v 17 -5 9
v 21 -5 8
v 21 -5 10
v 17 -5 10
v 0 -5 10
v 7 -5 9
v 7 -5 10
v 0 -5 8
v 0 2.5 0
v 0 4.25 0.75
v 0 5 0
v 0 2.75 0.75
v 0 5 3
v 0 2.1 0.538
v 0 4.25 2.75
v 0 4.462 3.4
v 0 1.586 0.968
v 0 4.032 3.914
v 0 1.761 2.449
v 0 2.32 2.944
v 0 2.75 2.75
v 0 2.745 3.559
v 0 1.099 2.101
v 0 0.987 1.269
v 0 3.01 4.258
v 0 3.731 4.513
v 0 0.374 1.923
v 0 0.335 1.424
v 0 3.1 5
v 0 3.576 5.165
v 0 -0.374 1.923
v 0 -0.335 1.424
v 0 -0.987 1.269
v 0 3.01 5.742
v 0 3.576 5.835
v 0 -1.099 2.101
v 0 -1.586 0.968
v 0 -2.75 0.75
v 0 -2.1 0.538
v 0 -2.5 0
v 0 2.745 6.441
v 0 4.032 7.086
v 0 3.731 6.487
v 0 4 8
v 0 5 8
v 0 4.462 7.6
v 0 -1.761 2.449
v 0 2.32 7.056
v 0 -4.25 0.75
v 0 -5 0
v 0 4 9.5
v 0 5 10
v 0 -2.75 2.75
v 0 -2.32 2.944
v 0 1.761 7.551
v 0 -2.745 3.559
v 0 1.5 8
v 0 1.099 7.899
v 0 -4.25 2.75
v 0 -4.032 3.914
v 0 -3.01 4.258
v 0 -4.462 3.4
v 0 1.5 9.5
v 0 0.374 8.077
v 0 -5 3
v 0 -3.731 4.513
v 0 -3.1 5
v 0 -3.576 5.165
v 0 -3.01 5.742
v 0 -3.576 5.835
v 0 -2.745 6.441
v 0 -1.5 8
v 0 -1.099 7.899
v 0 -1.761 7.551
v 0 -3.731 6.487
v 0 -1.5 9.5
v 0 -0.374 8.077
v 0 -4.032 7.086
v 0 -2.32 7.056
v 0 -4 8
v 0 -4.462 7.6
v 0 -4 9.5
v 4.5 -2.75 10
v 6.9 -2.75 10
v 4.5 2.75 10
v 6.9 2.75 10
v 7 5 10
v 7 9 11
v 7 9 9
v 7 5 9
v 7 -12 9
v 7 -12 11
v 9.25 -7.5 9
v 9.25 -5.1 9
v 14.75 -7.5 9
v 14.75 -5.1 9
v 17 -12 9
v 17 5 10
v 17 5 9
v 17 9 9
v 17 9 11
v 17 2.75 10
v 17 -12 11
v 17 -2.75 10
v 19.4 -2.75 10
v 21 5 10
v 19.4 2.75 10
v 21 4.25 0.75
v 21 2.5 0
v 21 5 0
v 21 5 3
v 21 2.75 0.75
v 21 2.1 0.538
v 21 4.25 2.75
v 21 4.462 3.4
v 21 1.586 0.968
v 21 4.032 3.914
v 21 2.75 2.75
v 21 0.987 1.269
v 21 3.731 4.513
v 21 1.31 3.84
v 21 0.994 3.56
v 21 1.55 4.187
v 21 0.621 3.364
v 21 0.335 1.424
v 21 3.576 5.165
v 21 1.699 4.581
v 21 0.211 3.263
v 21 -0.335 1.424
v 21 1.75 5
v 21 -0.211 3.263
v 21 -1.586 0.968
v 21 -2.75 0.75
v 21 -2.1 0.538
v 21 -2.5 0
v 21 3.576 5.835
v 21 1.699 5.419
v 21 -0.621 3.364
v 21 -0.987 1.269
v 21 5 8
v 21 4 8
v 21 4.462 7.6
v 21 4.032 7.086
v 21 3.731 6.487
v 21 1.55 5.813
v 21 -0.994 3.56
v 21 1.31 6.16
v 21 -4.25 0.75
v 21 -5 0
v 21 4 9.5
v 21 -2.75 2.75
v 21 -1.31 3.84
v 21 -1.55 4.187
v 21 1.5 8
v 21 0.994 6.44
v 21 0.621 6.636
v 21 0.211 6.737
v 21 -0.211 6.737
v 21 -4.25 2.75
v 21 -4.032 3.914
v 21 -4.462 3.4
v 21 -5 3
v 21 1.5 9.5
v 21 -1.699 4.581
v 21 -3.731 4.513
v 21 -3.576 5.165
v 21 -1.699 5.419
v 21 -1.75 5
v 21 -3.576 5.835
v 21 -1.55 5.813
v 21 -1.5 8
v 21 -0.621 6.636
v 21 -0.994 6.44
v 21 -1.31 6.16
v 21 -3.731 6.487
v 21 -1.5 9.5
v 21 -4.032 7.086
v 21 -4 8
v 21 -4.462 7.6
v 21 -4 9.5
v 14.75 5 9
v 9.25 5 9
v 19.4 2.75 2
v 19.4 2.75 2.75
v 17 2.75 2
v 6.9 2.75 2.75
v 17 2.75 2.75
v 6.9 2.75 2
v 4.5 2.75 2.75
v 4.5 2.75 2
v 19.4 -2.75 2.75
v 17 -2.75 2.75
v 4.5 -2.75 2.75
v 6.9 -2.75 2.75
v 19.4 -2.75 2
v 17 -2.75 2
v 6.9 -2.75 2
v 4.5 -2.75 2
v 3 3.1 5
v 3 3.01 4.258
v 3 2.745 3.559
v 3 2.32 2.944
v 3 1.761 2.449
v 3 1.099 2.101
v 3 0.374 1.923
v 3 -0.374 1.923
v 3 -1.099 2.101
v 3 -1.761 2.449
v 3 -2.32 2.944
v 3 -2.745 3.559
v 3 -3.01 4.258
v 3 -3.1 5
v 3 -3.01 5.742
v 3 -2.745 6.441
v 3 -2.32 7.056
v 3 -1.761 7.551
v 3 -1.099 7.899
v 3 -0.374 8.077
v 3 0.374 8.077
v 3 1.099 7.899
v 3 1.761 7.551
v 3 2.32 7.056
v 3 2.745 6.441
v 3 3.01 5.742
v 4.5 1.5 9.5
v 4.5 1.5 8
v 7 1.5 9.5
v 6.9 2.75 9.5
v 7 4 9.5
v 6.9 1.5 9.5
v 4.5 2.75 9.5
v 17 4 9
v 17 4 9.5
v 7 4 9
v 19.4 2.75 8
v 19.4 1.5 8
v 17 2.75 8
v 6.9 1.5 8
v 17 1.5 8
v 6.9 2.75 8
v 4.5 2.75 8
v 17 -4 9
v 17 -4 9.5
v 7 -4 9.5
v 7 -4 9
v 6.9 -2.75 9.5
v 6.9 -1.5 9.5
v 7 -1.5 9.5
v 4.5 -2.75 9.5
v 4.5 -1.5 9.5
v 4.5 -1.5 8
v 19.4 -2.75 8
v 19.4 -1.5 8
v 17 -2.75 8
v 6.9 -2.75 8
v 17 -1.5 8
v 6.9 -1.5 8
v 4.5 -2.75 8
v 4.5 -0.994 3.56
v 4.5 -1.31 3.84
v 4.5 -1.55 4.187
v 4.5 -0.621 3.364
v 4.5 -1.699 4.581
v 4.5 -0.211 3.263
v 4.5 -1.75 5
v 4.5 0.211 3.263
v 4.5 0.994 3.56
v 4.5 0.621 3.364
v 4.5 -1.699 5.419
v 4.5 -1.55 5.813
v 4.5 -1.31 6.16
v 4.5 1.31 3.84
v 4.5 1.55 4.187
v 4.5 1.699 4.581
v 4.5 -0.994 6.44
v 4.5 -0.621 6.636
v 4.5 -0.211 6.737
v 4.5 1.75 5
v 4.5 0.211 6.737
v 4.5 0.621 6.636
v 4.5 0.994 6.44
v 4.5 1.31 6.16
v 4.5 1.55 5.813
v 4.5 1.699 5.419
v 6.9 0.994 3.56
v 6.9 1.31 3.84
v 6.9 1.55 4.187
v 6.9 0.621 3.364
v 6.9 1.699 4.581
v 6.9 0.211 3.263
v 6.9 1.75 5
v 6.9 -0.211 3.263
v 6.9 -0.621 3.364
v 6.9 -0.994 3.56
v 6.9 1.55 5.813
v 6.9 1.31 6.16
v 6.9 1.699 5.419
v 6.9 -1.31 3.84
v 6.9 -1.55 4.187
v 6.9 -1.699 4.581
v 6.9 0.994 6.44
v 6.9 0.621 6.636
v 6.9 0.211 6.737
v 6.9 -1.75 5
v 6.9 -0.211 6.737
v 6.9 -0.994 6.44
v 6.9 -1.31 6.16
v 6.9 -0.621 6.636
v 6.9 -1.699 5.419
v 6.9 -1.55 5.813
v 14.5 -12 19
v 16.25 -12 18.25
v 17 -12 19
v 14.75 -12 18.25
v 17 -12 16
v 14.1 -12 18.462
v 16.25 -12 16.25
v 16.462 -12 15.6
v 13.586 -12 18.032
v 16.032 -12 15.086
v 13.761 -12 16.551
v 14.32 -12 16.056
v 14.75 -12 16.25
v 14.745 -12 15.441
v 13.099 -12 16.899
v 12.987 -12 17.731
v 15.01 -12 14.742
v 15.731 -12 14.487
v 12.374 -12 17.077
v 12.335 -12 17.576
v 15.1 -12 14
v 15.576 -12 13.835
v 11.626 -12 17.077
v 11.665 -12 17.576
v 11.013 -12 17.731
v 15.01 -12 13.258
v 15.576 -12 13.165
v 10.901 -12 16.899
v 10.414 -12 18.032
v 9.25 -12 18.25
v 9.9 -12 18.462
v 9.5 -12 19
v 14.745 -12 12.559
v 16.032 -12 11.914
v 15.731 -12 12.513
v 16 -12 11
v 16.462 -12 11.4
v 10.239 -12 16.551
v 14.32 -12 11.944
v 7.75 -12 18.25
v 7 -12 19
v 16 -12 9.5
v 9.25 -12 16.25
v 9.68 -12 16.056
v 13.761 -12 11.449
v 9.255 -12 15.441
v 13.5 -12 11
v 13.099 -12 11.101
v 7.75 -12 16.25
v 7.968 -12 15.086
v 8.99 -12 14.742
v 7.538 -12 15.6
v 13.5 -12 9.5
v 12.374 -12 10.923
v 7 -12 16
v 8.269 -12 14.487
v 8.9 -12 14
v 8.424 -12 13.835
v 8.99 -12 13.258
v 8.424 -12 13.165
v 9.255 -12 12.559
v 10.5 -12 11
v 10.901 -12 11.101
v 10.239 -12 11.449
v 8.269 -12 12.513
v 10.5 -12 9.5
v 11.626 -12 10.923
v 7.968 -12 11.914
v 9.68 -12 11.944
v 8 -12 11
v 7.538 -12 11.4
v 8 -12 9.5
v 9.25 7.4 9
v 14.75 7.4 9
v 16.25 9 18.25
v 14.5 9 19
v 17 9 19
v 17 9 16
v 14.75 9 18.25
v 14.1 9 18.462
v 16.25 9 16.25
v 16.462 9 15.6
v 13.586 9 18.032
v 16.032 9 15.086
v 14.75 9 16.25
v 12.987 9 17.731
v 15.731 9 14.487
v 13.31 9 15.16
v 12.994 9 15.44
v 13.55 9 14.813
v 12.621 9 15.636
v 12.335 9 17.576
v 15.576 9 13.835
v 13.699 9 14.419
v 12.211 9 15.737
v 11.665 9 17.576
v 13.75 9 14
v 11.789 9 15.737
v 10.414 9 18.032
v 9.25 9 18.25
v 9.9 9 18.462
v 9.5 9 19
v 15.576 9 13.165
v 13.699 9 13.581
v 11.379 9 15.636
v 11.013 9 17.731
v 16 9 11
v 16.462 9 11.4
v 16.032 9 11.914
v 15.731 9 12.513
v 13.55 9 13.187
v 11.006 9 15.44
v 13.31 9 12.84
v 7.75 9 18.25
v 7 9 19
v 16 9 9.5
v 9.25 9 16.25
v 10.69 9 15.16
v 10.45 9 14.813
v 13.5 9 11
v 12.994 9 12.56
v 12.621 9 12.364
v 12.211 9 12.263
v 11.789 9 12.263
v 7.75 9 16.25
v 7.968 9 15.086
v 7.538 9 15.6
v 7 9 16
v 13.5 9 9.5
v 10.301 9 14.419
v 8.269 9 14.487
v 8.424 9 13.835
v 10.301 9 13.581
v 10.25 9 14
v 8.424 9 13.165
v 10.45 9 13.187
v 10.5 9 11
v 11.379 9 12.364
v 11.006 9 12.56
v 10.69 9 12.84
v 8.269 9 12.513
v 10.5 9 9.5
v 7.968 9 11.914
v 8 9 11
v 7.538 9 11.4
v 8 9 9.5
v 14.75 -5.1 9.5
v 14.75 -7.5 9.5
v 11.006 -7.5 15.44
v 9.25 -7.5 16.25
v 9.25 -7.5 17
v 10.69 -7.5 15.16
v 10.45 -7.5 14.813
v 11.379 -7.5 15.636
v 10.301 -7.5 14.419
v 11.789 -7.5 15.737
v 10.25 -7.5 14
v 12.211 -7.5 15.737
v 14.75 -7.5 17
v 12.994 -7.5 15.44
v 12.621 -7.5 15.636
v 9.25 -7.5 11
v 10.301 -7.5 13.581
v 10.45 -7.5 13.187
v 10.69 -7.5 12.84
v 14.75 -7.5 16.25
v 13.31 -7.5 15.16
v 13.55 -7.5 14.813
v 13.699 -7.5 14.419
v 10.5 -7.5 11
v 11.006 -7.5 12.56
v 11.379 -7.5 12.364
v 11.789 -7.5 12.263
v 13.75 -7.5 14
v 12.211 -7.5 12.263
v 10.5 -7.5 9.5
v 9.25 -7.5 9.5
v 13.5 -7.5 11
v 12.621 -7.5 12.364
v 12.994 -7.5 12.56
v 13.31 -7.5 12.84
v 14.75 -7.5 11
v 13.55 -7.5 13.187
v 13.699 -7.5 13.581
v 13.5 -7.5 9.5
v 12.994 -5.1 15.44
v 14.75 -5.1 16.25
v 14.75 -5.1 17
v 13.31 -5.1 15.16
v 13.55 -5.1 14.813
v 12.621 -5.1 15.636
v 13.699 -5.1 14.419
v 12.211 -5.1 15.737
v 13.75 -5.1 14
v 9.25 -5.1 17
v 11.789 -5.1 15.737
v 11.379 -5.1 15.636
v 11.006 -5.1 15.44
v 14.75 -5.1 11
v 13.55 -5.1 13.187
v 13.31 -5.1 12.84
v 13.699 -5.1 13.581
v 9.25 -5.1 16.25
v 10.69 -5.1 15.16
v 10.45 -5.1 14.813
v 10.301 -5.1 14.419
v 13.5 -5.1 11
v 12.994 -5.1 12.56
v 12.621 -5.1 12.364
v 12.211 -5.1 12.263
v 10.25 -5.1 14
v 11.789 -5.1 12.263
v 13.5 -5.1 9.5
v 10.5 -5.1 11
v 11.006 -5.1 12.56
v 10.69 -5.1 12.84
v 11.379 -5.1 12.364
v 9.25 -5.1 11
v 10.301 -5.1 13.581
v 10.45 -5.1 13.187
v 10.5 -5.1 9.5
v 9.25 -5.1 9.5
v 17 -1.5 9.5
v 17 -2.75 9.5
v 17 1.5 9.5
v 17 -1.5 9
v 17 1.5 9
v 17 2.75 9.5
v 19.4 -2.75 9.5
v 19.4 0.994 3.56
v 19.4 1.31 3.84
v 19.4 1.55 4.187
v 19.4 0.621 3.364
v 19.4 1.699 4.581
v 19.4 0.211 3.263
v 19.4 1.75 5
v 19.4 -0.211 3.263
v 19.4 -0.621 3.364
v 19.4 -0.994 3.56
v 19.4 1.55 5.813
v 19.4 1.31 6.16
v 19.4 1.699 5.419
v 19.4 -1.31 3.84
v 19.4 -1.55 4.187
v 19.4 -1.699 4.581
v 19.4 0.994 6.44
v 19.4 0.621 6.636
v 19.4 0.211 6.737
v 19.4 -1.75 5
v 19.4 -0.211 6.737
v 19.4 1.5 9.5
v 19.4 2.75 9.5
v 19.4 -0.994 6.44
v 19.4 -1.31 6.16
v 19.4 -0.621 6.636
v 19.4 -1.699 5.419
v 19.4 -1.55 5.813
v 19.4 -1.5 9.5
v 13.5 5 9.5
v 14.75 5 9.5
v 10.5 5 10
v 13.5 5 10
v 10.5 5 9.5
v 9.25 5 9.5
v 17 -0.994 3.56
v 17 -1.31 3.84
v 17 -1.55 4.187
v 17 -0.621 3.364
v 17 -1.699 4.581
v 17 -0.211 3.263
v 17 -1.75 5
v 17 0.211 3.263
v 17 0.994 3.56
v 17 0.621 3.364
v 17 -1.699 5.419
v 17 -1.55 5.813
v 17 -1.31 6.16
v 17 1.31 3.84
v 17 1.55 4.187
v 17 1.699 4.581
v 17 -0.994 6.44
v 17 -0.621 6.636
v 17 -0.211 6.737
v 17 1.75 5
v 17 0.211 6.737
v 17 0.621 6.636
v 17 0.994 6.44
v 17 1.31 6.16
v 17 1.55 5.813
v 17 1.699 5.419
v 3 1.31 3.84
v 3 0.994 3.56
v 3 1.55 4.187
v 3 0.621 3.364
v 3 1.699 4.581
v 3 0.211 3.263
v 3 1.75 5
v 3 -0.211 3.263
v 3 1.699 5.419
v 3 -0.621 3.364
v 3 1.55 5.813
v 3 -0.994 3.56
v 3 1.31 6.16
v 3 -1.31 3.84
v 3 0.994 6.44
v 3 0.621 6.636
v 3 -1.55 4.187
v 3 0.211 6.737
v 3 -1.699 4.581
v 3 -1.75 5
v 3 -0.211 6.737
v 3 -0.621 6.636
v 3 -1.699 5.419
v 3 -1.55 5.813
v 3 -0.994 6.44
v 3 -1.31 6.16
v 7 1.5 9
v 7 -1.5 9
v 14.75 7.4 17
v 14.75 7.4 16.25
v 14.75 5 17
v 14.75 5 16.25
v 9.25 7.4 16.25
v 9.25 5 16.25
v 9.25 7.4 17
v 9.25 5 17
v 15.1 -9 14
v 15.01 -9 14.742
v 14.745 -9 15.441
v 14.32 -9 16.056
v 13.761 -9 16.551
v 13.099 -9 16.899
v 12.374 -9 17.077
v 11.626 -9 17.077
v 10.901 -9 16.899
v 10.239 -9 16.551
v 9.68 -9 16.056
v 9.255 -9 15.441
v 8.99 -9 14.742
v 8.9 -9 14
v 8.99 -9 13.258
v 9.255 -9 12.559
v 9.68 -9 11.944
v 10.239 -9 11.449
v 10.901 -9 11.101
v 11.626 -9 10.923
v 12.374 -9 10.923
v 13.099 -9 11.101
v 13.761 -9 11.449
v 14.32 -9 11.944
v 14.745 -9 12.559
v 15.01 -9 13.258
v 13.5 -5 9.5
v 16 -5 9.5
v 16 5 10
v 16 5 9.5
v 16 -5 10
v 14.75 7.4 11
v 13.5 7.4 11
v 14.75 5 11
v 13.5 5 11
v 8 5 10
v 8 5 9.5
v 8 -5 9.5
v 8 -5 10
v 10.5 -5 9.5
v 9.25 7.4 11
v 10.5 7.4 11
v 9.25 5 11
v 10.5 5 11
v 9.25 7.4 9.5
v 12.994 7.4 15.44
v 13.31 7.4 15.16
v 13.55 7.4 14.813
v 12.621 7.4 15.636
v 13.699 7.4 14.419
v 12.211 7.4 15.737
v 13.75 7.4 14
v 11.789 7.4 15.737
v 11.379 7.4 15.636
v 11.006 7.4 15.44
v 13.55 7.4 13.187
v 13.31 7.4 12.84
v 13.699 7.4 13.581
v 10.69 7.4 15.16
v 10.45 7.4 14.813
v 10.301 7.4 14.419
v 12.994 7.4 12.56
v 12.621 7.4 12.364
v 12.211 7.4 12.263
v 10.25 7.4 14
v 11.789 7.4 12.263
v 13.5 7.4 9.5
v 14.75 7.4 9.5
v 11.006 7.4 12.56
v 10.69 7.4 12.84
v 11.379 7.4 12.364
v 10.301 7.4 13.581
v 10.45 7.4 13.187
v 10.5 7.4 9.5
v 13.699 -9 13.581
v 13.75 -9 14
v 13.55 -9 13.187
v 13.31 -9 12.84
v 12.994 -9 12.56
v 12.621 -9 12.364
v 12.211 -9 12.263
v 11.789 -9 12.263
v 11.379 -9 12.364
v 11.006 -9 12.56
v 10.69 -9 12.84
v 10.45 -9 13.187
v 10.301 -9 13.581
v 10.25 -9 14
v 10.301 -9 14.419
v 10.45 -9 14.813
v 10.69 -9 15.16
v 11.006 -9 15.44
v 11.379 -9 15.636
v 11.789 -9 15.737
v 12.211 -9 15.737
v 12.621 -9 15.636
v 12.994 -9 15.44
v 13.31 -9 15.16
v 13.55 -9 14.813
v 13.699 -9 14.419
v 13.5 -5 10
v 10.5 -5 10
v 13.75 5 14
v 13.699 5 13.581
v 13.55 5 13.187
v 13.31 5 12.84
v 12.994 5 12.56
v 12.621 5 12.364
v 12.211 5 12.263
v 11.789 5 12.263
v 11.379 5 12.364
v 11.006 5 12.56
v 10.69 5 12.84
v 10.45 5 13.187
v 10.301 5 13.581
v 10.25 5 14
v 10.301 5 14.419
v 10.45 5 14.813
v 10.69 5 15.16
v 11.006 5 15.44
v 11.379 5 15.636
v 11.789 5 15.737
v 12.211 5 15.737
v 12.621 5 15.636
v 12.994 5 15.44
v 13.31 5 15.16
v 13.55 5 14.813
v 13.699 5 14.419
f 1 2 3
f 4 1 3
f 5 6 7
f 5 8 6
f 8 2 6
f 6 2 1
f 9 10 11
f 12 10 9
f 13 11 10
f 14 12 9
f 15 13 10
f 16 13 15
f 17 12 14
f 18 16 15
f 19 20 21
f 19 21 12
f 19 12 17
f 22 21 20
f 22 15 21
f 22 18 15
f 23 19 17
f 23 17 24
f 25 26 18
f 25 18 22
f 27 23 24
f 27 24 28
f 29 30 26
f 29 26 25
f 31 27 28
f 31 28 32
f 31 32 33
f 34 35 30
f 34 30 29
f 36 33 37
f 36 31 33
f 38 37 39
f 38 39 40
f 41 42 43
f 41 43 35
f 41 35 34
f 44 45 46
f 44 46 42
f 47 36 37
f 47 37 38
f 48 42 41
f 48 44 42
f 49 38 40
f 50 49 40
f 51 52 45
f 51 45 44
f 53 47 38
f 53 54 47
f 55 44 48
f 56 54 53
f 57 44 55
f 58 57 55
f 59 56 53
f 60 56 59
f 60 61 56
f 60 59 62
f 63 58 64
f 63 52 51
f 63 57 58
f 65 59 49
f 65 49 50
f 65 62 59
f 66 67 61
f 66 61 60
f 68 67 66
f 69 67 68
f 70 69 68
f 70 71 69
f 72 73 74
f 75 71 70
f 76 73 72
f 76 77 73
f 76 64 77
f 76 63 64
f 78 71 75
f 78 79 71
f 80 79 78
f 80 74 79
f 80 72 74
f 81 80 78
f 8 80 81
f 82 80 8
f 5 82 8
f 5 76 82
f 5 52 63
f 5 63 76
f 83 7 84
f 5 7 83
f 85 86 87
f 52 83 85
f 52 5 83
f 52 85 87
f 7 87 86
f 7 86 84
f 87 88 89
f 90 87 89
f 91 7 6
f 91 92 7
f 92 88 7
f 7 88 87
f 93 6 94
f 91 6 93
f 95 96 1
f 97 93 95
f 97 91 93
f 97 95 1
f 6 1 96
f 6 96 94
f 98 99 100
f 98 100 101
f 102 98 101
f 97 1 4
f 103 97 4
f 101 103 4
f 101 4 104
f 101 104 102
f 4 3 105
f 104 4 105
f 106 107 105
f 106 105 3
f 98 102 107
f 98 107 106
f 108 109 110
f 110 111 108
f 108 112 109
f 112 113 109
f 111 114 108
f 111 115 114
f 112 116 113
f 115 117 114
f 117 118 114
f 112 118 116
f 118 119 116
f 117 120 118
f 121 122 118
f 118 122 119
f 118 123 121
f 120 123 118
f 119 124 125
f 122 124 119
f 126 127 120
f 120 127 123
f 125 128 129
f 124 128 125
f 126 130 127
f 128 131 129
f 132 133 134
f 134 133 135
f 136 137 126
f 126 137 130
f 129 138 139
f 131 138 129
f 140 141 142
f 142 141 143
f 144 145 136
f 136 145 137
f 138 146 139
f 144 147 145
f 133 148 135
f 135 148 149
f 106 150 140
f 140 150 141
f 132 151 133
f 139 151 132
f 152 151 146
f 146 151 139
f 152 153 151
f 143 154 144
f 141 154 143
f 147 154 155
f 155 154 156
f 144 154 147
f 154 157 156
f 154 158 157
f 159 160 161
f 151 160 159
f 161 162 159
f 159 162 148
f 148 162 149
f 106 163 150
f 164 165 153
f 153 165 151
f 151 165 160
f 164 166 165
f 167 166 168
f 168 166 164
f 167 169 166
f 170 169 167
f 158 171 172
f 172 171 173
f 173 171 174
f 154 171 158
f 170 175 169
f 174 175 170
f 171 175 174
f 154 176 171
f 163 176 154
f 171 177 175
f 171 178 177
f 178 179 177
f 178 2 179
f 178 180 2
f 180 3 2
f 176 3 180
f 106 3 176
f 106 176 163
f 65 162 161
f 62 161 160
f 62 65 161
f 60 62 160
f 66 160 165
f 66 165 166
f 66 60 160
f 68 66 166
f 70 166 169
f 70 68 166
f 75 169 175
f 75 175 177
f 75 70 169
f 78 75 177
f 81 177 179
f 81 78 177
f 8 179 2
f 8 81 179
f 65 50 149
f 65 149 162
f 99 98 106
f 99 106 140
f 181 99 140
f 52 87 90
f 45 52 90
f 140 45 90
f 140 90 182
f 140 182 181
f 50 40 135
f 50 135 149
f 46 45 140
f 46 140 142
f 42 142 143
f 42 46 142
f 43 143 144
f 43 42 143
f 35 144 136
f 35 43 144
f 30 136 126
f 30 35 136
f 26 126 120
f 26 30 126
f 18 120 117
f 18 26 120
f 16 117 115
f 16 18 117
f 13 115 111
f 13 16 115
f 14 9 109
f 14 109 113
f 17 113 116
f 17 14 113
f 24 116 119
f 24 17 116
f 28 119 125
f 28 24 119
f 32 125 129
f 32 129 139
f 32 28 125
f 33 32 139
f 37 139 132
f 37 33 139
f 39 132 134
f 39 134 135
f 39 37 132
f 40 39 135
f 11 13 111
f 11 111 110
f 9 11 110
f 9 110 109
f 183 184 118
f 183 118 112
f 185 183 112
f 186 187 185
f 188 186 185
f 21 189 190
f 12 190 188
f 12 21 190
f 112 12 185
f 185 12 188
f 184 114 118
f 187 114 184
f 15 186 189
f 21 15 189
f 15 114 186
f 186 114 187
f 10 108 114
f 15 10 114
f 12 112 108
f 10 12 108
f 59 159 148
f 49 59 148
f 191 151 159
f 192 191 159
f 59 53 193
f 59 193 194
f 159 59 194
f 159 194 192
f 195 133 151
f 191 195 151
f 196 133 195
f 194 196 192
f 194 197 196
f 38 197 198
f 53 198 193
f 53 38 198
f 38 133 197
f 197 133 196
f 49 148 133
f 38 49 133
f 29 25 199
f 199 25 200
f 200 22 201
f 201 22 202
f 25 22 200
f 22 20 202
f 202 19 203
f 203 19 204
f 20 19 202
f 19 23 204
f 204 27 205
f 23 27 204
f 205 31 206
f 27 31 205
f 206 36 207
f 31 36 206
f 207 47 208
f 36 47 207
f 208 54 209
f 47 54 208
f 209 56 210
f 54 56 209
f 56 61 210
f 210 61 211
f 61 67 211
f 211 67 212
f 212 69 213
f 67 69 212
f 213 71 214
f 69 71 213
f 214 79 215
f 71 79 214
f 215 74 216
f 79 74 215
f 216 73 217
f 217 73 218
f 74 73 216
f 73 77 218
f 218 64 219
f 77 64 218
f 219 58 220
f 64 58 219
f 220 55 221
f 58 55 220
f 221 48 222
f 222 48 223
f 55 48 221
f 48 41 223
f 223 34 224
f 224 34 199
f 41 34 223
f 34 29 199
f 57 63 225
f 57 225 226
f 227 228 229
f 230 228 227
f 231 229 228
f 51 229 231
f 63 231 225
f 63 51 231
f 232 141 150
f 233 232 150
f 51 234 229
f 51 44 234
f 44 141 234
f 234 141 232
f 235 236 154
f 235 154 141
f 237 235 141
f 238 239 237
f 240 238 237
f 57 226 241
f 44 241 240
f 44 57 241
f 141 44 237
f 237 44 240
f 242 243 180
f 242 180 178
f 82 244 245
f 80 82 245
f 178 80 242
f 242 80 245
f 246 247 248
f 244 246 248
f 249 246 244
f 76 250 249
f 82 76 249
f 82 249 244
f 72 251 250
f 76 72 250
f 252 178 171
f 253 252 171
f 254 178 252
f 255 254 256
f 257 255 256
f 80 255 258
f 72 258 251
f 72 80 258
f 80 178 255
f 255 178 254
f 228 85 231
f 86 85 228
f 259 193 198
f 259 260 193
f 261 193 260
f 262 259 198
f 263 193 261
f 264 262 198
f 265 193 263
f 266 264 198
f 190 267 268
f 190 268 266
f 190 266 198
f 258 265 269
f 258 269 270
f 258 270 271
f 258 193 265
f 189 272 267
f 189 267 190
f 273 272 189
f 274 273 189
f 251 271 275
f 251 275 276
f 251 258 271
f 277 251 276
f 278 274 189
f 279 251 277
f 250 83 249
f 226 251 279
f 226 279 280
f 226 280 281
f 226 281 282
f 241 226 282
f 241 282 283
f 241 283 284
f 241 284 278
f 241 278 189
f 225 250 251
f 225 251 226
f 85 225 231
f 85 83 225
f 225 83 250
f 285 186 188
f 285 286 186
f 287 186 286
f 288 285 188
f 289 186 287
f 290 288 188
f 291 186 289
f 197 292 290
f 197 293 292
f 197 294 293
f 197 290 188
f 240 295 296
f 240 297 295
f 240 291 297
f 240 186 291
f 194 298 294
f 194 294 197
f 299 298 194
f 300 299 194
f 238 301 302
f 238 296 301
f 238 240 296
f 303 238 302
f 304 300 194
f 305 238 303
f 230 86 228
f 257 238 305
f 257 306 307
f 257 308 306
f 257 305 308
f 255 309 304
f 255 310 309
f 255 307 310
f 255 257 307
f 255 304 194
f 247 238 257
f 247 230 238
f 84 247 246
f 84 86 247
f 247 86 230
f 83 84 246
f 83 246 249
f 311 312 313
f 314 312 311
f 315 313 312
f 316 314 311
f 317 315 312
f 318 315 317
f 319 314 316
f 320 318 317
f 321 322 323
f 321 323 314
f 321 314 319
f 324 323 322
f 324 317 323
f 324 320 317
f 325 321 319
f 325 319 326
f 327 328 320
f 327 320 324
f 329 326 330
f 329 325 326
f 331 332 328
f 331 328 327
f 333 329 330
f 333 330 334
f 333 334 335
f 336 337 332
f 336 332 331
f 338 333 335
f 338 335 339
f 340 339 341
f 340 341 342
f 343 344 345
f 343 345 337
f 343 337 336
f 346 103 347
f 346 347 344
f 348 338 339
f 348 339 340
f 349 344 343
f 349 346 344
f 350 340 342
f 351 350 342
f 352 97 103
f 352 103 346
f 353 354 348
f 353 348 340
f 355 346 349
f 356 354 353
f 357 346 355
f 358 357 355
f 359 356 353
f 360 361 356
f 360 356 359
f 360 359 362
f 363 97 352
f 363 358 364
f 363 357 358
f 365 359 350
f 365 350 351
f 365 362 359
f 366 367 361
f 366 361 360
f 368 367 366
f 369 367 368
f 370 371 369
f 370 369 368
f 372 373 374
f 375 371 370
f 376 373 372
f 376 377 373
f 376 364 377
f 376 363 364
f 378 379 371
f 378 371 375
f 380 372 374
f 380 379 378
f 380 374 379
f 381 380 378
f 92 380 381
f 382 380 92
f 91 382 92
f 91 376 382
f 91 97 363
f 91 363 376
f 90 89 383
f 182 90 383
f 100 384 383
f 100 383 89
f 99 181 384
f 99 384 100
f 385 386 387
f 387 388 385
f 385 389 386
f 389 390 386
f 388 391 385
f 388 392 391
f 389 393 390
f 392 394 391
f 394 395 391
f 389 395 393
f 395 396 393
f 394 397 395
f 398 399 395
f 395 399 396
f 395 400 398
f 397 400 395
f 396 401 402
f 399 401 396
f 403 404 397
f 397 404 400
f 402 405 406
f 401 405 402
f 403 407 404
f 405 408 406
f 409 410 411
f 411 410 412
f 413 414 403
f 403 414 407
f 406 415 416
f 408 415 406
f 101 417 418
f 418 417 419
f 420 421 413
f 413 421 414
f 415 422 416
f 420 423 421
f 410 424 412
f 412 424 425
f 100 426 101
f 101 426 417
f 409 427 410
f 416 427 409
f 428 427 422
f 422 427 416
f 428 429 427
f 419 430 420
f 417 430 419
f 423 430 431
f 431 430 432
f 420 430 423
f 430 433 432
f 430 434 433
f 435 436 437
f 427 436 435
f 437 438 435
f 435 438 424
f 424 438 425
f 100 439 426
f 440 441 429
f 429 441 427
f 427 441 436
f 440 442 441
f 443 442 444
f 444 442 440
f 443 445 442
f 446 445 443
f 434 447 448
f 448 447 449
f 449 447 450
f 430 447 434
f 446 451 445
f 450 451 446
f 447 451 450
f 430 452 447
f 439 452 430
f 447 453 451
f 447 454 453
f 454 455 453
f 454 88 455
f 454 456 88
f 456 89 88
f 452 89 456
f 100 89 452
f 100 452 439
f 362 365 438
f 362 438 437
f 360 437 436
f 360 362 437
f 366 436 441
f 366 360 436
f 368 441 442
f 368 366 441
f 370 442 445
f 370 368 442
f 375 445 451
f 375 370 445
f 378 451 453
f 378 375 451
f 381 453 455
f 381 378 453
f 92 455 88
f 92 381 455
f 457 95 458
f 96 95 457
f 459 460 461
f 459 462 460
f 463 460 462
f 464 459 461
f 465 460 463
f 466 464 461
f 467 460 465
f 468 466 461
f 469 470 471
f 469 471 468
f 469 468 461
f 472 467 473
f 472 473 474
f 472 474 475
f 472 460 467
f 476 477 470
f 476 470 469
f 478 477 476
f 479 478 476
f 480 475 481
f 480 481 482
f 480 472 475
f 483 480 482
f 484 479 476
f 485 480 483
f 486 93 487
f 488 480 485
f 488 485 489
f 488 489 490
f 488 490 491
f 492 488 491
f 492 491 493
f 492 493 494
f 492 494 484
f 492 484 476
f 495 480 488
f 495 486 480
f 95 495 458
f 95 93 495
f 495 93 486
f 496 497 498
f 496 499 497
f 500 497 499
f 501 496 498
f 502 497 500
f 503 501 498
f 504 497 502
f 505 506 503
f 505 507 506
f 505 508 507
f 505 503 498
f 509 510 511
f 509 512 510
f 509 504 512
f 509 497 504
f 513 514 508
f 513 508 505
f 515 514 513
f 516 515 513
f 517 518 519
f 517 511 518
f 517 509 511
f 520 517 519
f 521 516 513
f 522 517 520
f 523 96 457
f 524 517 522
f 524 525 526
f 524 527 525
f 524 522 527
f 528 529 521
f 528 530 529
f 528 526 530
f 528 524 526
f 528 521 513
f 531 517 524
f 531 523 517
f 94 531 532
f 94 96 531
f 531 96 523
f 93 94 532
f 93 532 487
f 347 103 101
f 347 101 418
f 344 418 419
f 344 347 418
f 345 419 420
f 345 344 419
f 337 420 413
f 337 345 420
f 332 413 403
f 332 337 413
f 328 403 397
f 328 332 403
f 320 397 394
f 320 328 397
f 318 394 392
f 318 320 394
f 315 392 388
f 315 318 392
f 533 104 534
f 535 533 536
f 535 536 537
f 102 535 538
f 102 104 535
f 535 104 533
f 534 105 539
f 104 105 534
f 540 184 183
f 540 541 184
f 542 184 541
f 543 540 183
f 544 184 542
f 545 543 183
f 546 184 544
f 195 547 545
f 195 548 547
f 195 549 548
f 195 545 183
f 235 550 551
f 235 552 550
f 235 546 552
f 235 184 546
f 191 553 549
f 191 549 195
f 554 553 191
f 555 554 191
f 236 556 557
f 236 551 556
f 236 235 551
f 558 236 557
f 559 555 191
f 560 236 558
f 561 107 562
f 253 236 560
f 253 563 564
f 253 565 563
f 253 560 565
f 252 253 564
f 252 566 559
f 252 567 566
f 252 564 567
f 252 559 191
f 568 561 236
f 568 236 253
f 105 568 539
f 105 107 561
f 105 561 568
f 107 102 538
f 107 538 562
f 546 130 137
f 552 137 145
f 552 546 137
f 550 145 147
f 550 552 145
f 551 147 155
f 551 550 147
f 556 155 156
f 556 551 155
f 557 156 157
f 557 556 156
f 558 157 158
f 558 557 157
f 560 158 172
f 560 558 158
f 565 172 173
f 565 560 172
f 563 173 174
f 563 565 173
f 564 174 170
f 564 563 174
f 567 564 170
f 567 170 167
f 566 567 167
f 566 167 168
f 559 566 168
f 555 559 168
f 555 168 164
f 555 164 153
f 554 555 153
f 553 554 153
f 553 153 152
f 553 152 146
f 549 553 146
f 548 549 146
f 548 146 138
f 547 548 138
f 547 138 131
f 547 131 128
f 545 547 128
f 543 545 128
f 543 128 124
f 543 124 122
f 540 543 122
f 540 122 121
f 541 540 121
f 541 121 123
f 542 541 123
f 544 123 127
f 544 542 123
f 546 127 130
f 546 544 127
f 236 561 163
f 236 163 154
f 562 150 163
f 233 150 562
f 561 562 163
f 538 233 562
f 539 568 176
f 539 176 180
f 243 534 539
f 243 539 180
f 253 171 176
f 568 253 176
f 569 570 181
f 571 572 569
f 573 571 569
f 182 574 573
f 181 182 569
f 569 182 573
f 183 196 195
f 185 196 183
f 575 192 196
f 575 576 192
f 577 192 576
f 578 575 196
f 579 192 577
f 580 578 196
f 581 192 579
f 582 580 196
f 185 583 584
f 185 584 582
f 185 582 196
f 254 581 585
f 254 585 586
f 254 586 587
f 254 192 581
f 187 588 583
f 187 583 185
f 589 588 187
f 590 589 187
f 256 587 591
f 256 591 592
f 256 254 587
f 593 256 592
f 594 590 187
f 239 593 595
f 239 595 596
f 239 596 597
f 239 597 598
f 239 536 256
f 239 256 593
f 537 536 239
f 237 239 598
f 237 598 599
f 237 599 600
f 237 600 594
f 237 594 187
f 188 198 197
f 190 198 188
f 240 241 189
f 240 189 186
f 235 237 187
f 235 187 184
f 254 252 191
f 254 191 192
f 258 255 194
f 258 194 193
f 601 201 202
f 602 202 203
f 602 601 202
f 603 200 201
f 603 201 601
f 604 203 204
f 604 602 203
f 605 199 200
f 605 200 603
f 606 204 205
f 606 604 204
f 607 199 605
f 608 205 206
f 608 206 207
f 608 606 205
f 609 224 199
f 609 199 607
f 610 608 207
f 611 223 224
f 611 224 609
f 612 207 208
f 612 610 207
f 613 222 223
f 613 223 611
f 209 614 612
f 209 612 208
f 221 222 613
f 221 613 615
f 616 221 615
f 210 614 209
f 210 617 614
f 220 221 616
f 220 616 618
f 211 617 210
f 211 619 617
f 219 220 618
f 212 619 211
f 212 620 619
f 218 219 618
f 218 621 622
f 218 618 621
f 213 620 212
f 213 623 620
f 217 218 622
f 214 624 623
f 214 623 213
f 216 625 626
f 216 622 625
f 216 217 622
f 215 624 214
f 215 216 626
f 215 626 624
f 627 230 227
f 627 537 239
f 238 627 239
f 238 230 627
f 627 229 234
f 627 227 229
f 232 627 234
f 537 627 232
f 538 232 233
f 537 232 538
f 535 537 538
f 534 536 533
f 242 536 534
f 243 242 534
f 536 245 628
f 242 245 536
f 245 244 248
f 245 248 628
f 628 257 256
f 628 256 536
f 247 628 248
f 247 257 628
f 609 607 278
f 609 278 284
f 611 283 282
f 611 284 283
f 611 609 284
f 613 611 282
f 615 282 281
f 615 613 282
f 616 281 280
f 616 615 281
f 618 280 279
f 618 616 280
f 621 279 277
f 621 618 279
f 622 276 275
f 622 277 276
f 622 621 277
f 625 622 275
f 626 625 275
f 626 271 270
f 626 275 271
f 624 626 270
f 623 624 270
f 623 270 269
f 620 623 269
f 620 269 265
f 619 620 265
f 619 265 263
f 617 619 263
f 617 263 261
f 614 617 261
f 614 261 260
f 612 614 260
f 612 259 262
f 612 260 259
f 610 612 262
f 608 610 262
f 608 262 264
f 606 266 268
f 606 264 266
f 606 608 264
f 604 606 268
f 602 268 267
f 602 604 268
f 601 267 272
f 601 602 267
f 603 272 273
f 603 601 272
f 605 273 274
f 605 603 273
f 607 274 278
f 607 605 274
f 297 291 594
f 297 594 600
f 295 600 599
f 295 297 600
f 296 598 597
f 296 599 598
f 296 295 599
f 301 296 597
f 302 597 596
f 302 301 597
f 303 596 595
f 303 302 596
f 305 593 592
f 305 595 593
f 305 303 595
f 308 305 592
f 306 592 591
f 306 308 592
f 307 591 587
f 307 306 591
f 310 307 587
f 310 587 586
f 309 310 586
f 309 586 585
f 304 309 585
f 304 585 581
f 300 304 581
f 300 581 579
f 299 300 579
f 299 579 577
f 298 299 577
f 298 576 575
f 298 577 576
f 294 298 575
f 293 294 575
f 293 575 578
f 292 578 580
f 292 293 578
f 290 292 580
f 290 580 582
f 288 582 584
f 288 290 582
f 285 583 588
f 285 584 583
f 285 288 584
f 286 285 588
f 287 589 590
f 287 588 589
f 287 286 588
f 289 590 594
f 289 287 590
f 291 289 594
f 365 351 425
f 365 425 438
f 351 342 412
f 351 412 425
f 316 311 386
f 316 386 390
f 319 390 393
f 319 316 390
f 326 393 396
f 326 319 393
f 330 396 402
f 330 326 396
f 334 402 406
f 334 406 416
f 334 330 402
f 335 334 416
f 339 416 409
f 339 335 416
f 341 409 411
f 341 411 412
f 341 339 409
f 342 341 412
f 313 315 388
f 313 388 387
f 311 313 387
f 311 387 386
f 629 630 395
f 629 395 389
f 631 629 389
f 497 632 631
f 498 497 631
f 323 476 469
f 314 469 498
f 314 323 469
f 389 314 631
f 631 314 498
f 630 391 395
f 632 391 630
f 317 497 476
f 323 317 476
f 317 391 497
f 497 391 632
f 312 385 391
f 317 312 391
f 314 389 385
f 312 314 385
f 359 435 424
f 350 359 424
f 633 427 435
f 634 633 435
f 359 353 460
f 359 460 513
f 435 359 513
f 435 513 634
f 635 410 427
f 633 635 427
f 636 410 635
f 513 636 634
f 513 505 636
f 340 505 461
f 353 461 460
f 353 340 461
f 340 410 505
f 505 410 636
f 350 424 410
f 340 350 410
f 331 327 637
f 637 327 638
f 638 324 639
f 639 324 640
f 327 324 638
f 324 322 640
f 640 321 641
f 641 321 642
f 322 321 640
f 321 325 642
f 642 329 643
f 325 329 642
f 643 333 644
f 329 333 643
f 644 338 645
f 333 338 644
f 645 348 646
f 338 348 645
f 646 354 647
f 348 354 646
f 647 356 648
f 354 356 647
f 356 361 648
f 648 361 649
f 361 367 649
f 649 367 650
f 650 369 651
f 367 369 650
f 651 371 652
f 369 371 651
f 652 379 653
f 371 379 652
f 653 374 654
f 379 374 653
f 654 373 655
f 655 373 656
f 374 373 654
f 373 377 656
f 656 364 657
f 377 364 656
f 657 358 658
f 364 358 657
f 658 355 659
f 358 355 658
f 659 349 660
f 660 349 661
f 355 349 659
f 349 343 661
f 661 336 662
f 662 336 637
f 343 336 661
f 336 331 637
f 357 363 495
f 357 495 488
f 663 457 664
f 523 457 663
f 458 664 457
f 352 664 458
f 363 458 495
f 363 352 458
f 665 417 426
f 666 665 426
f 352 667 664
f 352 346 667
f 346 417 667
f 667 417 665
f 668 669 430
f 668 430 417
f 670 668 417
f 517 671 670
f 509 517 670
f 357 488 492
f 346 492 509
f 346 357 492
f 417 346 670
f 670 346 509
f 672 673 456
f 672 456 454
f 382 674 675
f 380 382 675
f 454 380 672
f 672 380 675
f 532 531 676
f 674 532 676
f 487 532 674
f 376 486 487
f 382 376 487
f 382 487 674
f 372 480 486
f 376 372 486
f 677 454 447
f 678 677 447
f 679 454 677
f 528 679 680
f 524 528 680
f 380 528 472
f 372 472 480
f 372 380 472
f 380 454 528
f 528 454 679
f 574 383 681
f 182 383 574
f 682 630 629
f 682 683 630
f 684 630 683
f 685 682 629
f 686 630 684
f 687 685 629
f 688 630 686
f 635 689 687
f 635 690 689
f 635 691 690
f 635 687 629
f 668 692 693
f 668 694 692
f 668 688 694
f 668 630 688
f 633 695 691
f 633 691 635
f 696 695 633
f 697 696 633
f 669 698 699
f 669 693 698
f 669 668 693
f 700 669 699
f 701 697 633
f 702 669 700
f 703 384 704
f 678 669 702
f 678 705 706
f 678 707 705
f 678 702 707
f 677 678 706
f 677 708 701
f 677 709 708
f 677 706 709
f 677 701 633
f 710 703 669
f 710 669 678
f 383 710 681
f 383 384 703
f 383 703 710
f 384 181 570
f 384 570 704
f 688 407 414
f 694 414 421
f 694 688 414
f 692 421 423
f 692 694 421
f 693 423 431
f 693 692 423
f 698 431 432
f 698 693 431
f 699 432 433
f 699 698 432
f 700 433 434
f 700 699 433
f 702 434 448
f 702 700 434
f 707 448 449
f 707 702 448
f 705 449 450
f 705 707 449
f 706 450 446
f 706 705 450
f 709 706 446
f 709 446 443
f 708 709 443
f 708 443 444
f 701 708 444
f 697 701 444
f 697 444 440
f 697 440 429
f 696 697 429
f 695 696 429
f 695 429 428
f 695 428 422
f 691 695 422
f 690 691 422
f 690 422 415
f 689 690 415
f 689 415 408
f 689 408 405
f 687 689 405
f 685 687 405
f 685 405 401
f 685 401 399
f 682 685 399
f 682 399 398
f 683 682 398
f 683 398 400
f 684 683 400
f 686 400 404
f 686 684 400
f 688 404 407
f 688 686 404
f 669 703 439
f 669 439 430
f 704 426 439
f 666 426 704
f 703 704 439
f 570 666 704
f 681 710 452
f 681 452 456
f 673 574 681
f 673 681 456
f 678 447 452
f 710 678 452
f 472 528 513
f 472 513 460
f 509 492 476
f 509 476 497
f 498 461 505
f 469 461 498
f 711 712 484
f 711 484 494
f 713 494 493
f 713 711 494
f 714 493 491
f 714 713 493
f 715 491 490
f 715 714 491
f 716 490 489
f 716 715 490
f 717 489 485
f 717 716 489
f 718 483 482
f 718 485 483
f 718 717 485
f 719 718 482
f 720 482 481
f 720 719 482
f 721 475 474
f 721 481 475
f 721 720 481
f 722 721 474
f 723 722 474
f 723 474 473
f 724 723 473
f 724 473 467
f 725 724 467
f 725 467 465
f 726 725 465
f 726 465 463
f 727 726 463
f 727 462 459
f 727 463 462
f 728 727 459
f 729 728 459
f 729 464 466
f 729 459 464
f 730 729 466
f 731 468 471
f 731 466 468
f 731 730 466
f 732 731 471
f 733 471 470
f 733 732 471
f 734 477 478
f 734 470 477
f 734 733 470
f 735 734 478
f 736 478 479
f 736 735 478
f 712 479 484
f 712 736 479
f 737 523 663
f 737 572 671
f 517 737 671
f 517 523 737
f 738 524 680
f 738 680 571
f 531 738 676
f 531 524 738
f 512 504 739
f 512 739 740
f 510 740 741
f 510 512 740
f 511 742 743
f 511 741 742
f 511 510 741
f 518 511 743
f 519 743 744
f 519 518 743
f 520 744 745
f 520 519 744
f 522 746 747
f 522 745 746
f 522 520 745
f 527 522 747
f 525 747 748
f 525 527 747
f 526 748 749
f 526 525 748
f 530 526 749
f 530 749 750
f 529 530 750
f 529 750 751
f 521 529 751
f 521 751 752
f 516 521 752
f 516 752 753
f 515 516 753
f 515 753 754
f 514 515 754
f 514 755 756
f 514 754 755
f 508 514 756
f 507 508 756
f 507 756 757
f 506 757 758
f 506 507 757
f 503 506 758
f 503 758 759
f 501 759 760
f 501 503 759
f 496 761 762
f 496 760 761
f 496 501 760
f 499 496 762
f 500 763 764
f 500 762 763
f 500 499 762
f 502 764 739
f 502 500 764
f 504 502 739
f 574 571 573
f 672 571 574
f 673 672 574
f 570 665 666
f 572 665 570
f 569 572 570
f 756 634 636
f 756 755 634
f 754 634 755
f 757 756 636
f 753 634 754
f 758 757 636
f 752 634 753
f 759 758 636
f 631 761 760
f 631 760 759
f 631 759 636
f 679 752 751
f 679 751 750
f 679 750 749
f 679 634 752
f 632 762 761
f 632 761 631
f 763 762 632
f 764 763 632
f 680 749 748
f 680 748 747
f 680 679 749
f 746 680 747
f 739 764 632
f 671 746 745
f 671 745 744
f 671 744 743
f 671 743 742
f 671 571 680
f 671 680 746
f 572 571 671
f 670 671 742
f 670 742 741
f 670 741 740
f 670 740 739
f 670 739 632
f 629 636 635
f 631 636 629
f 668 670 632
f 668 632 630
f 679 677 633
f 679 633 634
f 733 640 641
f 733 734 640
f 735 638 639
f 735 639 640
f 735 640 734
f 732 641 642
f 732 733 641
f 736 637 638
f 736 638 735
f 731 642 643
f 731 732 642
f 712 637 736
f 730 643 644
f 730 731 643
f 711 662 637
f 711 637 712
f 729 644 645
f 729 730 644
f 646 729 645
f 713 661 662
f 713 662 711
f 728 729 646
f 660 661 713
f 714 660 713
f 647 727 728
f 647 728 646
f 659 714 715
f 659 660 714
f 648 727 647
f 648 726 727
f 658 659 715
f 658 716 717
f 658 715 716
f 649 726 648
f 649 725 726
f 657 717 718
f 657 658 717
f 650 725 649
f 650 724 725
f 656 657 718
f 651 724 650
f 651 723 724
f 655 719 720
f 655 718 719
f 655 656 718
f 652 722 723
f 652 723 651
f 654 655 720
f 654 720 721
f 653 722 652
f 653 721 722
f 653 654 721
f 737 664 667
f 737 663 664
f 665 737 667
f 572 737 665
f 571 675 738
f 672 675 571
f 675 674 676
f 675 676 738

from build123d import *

# Parameters (mm, degrees)
SKETCH008_R             = 1.75
PAD001_DEPTH            = 21
SKETCH009_W             = 5.5
SKETCH009_H             = 2.4
POCKET003_DEPTH         = 8
SKETCH010_R             = 3.1
POCKET004_DEPTH         = 3
SKETCH014_W             = 1.5
SKETCH014_H             = 2
SKETCH014_W_2           = 2.5
SKETCH014_H_2           = 1.5
POCKET005_DEPTH         = 21.001
BODY002_ROLL_ANGLE      = 180
BODY002_PLACEMENT_ANGLE = 90
SKETCH_R                = 1.75
PAD_DEPTH               = 21
SKETCH002_W             = 5.5
SKETCH002_H             = 2.4
POCKET_DEPTH            = 8
SKETCH003_R             = 3.1
POCKET001_DEPTH         = 3
SKETCH007_W             = 1.5
SKETCH007_H             = 2
SKETCH007_W_2           = 2.5
SKETCH007_H_2           = 1.5
POCKET002_DEPTH         = 21.001


with BuildPart() as body002:
    # Sketch008 → Pad001 (new body)
    with BuildSketch(Plane.YZ):
        with BuildLine():
            Line((-5, 8), (-5, 10))
            Line((-5, 10), (5, 10))
            Line((5, 10), (5, 8))
            ThreePointArc((5, 8), (3.556624, 5.5), (5, 3))
            Line((5, 3), (5, 0))
            Line((5, 0), (2.5, 0))
            ThreePointArc((2.5, 0), (0, 1.443376), (-2.5, 0))
            Line((-2.5, 0), (-5, 0))
            Line((-5, 0), (-5, 3))
            ThreePointArc((-5, 3), (-3.556624, 5.5), (-5, 8))
        make_face()
        with Locations((0, 5)):
            Circle(SKETCH008_R, mode=Mode.SUBTRACT)
    extrude(amount=PAD001_DEPTH)

    # Sketch009 → Pocket003 (cut)
    with BuildSketch(Plane(origin=(0, 0, 10), x_dir=(0, -1, 0), z_dir=(0, 0, 1))):
        with Locations((0, 5.7)):
            Rectangle(SKETCH009_W, SKETCH009_H)
        with Locations((0, 18.2)):
            Rectangle(SKETCH009_W, SKETCH009_H)
    extrude(amount=-POCKET003_DEPTH, mode=Mode.SUBTRACT)

    # Sketch010 (on Face4 of Pocket003) → Pocket004 (cut)
    with BuildSketch(Plane(origin=(0, 0, 0), x_dir=(0, 1, 0), z_dir=(-1, 0, 0))):
        with Locations((0, -5)):
            Circle(SKETCH010_R)
    extrude(amount=-POCKET004_DEPTH, mode=Mode.SUBTRACT)

    # Sketch014 (on Face4 of Pocket004) → Pocket005 (cut, through all)
    with BuildSketch(Plane(origin=(0, 0, 0), x_dir=(0, 1, 0), z_dir=(-1, 0, 0))):
        with Locations((-3.5, -1.75)):
            Rectangle(SKETCH014_W, SKETCH014_H)
        with Locations((3.5, -1.75)):
            Rectangle(SKETCH014_W, SKETCH014_H)
        with Locations((-2.75, -8.75)):
            Rectangle(SKETCH014_W_2, SKETCH014_H_2)
        with Locations((2.75, -8.75)):
            Rectangle(SKETCH014_W_2, SKETCH014_H_2)
    extrude(amount=-POCKET005_DEPTH, mode=Mode.SUBTRACT)


with BuildPart() as body002_1:
    # Body002 roll: moved
    add(body002.part.rotate(Axis((0, 0, 0), (1, 0, 0)), BODY002_ROLL_ANGLE))


with BuildPart() as body002_2:
    # Body002 placement: moved
    add(body002_1.part.moved(Location((12, -12, 19))).rotate(Axis((12, -12, 19), (0, 0, 1)), BODY002_PLACEMENT_ANGLE))


with BuildPart() as fusion:
    # Sketch → Pad (new body)
    with BuildSketch(Plane.YZ):
        with BuildLine():
            Line((-5, 8), (-5, 10))
            Line((-5, 10), (5, 10))
            Line((5, 10), (5, 8))
            ThreePointArc((5, 8), (3.556624, 5.5), (5, 3))
            Line((5, 3), (5, 0))
            Line((5, 0), (2.5, 0))
            ThreePointArc((2.5, 0), (0, 1.443376), (-2.5, 0))
            Line((-2.5, 0), (-5, 0))
            Line((-5, 0), (-5, 3))
            ThreePointArc((-5, 3), (-3.556624, 5.5), (-5, 8))
        make_face()
        with Locations((0, 5)):
            Circle(SKETCH_R, mode=Mode.SUBTRACT)
    extrude(amount=PAD_DEPTH)

    # Sketch002 → Pocket (cut)
    with BuildSketch(Plane(origin=(0, 0, 10), x_dir=(0, -1, 0), z_dir=(0, 0, 1))):
        with Locations((0, 5.7)):
            Rectangle(SKETCH002_W, SKETCH002_H)
        with Locations((0, 18.2)):
            Rectangle(SKETCH002_W, SKETCH002_H)
    extrude(amount=-POCKET_DEPTH, mode=Mode.SUBTRACT)

    # Sketch003 (on Face4 of Pocket) → Pocket001 (cut)
    with BuildSketch(Plane(origin=(0, 0, 0), x_dir=(0, 1, 0), z_dir=(-1, 0, 0))):
        with Locations((0, -5)):
            Circle(SKETCH003_R)
    extrude(amount=-POCKET001_DEPTH, mode=Mode.SUBTRACT)

    # Sketch007 (on Face4 of Pocket001) → Pocket002 (cut, through all)
    with BuildSketch(Plane(origin=(0, 0, 0), x_dir=(0, 1, 0), z_dir=(-1, 0, 0))):
        with Locations((-3.5, -1.75)):
            Rectangle(SKETCH007_W, SKETCH007_H)
        with Locations((3.5, -1.75)):
            Rectangle(SKETCH007_W, SKETCH007_H)
        with Locations((-2.75, -8.75)):
            Rectangle(SKETCH007_W_2, SKETCH007_H_2)
        with Locations((2.75, -8.75)):
            Rectangle(SKETCH007_W_2, SKETCH007_H_2)
    extrude(amount=-POCKET002_DEPTH, mode=Mode.SUBTRACT)

    # Fusion: union Body002
    add(body002_2.part)


solid = fusion.part
